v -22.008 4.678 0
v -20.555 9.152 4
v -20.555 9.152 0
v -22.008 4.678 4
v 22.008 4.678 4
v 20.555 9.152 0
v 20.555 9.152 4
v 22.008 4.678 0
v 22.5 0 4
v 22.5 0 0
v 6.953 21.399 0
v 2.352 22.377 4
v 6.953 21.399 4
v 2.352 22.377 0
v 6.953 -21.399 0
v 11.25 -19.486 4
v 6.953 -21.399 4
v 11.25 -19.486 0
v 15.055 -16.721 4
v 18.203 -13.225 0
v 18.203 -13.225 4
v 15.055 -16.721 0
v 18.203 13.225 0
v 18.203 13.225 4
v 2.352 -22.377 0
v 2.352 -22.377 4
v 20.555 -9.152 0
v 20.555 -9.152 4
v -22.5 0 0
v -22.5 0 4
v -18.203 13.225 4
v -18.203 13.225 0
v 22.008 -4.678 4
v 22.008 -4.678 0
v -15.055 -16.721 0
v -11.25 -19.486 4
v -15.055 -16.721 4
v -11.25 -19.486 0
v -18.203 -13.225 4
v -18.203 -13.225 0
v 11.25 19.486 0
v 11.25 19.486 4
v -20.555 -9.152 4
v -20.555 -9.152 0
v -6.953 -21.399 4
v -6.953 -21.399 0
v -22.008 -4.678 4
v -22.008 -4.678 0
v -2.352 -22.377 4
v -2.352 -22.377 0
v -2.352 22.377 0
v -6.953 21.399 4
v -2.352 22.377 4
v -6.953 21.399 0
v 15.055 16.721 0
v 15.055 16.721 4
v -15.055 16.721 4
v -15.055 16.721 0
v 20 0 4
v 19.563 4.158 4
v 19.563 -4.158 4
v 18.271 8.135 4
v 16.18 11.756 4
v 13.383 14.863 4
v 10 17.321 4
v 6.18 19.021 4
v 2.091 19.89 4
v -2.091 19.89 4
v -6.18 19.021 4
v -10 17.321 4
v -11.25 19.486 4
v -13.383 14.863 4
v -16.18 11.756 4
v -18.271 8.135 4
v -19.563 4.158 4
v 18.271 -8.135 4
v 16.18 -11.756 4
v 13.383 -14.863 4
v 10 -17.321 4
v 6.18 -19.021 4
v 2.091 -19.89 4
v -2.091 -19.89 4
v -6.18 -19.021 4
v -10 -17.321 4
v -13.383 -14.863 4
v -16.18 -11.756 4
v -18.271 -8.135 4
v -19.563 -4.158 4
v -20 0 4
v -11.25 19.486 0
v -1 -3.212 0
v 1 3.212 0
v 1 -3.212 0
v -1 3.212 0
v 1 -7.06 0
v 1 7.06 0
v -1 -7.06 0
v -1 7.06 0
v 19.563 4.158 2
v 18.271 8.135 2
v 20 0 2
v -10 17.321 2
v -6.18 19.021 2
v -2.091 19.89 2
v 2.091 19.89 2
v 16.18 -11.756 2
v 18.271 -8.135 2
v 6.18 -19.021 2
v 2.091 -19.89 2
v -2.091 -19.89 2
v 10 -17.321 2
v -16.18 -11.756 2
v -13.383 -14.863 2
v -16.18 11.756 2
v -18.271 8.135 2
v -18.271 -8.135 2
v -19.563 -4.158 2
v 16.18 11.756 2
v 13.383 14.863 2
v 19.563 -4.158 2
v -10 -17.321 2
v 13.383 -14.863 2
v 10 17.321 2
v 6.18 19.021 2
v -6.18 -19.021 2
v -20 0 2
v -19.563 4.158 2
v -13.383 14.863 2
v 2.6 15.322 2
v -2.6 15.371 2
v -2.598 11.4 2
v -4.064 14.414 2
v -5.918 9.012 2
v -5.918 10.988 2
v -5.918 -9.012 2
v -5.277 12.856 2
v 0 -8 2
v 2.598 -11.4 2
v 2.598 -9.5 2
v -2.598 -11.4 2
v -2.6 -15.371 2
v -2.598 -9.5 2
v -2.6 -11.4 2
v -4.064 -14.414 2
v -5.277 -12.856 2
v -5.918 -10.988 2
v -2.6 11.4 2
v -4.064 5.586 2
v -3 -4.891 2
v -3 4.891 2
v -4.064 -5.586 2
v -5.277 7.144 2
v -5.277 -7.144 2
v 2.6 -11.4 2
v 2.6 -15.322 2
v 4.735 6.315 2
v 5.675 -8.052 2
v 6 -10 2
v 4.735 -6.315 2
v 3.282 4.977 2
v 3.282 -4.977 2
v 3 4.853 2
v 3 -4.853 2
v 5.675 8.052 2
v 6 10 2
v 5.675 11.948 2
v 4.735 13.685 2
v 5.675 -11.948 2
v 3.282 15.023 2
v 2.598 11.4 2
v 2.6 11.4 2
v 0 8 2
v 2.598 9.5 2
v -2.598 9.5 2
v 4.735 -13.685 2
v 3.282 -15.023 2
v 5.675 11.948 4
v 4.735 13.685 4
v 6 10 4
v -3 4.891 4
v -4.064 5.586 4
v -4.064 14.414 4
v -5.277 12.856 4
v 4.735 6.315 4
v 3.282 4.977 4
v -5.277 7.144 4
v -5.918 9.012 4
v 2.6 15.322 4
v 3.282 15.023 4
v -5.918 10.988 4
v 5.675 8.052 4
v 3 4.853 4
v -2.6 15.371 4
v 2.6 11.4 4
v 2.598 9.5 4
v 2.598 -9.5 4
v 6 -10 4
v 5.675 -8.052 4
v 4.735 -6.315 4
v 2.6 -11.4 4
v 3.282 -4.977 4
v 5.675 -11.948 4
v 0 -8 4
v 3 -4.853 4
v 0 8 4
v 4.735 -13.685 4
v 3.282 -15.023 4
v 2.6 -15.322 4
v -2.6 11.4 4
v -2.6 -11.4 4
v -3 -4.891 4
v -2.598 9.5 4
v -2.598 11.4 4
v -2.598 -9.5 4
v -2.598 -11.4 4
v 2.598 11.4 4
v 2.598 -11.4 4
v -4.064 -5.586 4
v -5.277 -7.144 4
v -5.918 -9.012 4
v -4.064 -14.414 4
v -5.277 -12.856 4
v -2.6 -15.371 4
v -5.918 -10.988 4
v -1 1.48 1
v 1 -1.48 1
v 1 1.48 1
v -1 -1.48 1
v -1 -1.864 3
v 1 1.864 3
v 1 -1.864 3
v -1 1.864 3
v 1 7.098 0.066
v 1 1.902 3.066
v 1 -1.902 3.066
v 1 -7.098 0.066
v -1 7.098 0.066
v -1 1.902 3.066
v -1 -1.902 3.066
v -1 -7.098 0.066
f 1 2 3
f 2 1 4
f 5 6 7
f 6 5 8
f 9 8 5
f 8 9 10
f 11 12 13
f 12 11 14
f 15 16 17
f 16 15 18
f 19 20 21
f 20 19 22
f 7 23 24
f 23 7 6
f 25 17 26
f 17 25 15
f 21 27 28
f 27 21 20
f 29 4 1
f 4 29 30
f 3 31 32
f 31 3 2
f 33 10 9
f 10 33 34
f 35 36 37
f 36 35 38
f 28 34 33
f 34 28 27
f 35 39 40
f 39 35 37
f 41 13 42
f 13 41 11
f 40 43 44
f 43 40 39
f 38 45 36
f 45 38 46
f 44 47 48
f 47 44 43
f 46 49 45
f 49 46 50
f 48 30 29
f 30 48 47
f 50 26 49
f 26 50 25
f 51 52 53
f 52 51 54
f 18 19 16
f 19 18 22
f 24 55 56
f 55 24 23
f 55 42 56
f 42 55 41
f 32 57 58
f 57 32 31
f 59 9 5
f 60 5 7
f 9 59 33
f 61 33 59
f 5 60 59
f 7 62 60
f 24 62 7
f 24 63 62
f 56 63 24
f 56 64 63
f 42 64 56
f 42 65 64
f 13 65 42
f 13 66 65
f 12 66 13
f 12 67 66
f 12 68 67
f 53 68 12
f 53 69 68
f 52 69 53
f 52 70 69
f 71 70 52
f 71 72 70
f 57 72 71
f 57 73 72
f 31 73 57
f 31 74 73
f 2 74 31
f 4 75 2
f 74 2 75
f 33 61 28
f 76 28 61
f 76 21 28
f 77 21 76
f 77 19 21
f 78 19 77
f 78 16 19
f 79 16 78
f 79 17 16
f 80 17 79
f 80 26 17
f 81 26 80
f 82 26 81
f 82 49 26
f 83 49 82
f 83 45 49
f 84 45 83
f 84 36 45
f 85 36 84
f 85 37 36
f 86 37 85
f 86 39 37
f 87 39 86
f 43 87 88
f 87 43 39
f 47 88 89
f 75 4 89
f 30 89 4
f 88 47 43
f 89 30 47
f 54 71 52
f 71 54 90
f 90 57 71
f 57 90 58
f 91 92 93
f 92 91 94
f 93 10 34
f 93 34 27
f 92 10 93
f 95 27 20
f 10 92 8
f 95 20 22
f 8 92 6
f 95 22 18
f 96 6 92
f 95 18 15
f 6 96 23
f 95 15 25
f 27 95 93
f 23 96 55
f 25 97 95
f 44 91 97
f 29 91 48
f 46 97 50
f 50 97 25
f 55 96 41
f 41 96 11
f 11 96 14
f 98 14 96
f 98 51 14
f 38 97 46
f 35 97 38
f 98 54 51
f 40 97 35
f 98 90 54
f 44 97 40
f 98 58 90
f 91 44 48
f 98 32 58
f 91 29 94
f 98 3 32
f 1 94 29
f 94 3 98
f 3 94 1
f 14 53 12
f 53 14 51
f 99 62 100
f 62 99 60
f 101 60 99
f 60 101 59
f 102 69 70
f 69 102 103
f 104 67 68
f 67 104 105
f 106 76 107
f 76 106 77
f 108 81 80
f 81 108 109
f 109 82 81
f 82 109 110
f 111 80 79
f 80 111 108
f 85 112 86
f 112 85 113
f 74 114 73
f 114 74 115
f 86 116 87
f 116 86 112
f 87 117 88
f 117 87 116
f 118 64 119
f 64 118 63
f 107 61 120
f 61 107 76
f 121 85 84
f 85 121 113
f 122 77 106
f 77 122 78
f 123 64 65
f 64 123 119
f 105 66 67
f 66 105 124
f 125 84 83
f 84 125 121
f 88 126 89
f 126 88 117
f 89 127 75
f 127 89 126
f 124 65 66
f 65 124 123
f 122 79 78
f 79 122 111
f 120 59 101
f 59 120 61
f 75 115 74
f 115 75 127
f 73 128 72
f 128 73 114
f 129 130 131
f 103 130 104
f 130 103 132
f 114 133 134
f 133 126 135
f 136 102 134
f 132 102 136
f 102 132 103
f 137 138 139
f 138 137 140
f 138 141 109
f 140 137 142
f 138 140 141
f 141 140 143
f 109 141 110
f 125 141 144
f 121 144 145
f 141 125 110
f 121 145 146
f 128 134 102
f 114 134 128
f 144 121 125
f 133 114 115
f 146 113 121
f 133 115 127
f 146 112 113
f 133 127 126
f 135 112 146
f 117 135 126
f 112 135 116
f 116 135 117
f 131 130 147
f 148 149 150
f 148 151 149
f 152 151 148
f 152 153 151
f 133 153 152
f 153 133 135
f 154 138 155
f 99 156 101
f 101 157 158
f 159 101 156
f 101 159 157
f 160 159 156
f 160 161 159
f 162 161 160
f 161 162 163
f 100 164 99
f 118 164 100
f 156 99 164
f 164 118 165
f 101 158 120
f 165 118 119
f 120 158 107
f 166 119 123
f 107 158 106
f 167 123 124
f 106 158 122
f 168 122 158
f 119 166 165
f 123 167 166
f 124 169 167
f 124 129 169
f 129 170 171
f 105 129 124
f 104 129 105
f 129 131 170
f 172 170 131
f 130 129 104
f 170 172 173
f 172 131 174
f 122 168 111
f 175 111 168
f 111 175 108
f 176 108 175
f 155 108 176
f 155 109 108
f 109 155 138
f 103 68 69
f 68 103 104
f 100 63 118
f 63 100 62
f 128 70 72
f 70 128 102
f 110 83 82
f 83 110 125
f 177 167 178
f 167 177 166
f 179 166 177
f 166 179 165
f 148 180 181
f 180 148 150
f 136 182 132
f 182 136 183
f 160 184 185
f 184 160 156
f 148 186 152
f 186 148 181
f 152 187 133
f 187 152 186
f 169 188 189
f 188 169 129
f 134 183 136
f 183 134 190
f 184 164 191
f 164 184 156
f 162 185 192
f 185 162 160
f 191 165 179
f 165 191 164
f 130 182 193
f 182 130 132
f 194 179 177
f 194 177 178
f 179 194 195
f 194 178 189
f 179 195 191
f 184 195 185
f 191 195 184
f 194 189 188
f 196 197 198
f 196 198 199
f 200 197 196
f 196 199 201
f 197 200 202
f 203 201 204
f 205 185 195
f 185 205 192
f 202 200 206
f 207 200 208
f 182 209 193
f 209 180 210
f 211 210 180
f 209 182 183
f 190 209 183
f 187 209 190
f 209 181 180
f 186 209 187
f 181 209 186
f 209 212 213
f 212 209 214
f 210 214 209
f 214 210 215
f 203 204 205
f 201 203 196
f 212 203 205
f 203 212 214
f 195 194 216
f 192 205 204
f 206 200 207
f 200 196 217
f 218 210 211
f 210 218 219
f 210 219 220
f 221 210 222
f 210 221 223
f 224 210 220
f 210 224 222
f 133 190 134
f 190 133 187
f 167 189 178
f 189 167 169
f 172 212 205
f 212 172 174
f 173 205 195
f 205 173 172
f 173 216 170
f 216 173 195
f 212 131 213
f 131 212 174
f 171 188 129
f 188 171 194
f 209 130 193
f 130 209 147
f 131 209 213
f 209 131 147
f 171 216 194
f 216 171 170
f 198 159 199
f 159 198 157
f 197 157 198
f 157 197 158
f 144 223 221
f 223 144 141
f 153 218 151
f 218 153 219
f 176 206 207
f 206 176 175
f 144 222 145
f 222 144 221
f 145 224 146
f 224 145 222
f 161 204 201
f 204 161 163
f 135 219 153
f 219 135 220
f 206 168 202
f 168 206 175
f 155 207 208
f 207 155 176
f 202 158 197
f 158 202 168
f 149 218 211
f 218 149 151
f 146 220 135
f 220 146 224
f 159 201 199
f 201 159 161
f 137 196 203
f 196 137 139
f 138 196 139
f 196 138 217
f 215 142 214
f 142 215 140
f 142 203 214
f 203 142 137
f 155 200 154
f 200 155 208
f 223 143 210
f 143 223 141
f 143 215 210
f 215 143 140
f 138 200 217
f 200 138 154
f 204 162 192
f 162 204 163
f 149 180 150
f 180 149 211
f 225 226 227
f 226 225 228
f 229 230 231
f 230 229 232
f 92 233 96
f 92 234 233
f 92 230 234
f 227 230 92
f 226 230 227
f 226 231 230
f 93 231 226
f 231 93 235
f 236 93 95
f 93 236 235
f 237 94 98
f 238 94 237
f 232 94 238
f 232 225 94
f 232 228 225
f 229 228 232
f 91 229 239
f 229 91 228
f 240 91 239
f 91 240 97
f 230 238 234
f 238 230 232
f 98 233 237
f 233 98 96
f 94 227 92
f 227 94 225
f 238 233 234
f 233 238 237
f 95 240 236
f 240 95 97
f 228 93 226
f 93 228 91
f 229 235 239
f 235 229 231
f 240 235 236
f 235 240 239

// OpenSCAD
difference(){
    union(){
    difference(){
        color("black")
        linear_extrude(4){
            circle(22.5);
        }
            
        color("red")
        translate([0,0,2])
        linear_extrude(4){
            circle(20);
        }
    }
        color("black")
    union(){
    translate([0,0,3])
    cube([6,16,2], center = true);
    
    translate([0, 10, 1])
    difference(){
        linear_extrude(3){
            circle(6);
        }
        
            angles = [for (i = [0:5]) (i*360/6)];
            coords = [for (th=angles) [3*cos(th), 3*sin(th)]];
        translate([0, 1, 0])
        rotate([0,0,90])
        linear_extrude(4){
                    polygon(coords);
        };
        
        translate([0, 4, 0])
        cube([5.2,5.2,8], center = true);
    }
    translate([0, -10, 1])
    difference(){
        linear_extrude(3){
            circle(6);
        }
        
            angles = [for (i = [0:5]) (i*360/6)];
            coords = [for (th=angles) [3*cos(th), 3*sin(th)]];
        translate([0, -1, 0])
        rotate([0,0,90])
        linear_extrude(4){
                    polygon(coords);
        };
        
        translate([0, -4, 0])
        cube([5.2,5.2,8], center = true);
    }
}}
    
    
    
    
        
        translate([0,0,2])
        rotate([0, 90, 90])
        cube([2, 2, 4], center = true);
        
        translate([0,4,0.7])
        rotate([60, 0, 0])
        cube([2, 2, 6], center = true);
        
        translate([0,-4,0.7])
        rotate([-60, 0, 0])
        cube([2, 2, 6], center = true);
}
        
